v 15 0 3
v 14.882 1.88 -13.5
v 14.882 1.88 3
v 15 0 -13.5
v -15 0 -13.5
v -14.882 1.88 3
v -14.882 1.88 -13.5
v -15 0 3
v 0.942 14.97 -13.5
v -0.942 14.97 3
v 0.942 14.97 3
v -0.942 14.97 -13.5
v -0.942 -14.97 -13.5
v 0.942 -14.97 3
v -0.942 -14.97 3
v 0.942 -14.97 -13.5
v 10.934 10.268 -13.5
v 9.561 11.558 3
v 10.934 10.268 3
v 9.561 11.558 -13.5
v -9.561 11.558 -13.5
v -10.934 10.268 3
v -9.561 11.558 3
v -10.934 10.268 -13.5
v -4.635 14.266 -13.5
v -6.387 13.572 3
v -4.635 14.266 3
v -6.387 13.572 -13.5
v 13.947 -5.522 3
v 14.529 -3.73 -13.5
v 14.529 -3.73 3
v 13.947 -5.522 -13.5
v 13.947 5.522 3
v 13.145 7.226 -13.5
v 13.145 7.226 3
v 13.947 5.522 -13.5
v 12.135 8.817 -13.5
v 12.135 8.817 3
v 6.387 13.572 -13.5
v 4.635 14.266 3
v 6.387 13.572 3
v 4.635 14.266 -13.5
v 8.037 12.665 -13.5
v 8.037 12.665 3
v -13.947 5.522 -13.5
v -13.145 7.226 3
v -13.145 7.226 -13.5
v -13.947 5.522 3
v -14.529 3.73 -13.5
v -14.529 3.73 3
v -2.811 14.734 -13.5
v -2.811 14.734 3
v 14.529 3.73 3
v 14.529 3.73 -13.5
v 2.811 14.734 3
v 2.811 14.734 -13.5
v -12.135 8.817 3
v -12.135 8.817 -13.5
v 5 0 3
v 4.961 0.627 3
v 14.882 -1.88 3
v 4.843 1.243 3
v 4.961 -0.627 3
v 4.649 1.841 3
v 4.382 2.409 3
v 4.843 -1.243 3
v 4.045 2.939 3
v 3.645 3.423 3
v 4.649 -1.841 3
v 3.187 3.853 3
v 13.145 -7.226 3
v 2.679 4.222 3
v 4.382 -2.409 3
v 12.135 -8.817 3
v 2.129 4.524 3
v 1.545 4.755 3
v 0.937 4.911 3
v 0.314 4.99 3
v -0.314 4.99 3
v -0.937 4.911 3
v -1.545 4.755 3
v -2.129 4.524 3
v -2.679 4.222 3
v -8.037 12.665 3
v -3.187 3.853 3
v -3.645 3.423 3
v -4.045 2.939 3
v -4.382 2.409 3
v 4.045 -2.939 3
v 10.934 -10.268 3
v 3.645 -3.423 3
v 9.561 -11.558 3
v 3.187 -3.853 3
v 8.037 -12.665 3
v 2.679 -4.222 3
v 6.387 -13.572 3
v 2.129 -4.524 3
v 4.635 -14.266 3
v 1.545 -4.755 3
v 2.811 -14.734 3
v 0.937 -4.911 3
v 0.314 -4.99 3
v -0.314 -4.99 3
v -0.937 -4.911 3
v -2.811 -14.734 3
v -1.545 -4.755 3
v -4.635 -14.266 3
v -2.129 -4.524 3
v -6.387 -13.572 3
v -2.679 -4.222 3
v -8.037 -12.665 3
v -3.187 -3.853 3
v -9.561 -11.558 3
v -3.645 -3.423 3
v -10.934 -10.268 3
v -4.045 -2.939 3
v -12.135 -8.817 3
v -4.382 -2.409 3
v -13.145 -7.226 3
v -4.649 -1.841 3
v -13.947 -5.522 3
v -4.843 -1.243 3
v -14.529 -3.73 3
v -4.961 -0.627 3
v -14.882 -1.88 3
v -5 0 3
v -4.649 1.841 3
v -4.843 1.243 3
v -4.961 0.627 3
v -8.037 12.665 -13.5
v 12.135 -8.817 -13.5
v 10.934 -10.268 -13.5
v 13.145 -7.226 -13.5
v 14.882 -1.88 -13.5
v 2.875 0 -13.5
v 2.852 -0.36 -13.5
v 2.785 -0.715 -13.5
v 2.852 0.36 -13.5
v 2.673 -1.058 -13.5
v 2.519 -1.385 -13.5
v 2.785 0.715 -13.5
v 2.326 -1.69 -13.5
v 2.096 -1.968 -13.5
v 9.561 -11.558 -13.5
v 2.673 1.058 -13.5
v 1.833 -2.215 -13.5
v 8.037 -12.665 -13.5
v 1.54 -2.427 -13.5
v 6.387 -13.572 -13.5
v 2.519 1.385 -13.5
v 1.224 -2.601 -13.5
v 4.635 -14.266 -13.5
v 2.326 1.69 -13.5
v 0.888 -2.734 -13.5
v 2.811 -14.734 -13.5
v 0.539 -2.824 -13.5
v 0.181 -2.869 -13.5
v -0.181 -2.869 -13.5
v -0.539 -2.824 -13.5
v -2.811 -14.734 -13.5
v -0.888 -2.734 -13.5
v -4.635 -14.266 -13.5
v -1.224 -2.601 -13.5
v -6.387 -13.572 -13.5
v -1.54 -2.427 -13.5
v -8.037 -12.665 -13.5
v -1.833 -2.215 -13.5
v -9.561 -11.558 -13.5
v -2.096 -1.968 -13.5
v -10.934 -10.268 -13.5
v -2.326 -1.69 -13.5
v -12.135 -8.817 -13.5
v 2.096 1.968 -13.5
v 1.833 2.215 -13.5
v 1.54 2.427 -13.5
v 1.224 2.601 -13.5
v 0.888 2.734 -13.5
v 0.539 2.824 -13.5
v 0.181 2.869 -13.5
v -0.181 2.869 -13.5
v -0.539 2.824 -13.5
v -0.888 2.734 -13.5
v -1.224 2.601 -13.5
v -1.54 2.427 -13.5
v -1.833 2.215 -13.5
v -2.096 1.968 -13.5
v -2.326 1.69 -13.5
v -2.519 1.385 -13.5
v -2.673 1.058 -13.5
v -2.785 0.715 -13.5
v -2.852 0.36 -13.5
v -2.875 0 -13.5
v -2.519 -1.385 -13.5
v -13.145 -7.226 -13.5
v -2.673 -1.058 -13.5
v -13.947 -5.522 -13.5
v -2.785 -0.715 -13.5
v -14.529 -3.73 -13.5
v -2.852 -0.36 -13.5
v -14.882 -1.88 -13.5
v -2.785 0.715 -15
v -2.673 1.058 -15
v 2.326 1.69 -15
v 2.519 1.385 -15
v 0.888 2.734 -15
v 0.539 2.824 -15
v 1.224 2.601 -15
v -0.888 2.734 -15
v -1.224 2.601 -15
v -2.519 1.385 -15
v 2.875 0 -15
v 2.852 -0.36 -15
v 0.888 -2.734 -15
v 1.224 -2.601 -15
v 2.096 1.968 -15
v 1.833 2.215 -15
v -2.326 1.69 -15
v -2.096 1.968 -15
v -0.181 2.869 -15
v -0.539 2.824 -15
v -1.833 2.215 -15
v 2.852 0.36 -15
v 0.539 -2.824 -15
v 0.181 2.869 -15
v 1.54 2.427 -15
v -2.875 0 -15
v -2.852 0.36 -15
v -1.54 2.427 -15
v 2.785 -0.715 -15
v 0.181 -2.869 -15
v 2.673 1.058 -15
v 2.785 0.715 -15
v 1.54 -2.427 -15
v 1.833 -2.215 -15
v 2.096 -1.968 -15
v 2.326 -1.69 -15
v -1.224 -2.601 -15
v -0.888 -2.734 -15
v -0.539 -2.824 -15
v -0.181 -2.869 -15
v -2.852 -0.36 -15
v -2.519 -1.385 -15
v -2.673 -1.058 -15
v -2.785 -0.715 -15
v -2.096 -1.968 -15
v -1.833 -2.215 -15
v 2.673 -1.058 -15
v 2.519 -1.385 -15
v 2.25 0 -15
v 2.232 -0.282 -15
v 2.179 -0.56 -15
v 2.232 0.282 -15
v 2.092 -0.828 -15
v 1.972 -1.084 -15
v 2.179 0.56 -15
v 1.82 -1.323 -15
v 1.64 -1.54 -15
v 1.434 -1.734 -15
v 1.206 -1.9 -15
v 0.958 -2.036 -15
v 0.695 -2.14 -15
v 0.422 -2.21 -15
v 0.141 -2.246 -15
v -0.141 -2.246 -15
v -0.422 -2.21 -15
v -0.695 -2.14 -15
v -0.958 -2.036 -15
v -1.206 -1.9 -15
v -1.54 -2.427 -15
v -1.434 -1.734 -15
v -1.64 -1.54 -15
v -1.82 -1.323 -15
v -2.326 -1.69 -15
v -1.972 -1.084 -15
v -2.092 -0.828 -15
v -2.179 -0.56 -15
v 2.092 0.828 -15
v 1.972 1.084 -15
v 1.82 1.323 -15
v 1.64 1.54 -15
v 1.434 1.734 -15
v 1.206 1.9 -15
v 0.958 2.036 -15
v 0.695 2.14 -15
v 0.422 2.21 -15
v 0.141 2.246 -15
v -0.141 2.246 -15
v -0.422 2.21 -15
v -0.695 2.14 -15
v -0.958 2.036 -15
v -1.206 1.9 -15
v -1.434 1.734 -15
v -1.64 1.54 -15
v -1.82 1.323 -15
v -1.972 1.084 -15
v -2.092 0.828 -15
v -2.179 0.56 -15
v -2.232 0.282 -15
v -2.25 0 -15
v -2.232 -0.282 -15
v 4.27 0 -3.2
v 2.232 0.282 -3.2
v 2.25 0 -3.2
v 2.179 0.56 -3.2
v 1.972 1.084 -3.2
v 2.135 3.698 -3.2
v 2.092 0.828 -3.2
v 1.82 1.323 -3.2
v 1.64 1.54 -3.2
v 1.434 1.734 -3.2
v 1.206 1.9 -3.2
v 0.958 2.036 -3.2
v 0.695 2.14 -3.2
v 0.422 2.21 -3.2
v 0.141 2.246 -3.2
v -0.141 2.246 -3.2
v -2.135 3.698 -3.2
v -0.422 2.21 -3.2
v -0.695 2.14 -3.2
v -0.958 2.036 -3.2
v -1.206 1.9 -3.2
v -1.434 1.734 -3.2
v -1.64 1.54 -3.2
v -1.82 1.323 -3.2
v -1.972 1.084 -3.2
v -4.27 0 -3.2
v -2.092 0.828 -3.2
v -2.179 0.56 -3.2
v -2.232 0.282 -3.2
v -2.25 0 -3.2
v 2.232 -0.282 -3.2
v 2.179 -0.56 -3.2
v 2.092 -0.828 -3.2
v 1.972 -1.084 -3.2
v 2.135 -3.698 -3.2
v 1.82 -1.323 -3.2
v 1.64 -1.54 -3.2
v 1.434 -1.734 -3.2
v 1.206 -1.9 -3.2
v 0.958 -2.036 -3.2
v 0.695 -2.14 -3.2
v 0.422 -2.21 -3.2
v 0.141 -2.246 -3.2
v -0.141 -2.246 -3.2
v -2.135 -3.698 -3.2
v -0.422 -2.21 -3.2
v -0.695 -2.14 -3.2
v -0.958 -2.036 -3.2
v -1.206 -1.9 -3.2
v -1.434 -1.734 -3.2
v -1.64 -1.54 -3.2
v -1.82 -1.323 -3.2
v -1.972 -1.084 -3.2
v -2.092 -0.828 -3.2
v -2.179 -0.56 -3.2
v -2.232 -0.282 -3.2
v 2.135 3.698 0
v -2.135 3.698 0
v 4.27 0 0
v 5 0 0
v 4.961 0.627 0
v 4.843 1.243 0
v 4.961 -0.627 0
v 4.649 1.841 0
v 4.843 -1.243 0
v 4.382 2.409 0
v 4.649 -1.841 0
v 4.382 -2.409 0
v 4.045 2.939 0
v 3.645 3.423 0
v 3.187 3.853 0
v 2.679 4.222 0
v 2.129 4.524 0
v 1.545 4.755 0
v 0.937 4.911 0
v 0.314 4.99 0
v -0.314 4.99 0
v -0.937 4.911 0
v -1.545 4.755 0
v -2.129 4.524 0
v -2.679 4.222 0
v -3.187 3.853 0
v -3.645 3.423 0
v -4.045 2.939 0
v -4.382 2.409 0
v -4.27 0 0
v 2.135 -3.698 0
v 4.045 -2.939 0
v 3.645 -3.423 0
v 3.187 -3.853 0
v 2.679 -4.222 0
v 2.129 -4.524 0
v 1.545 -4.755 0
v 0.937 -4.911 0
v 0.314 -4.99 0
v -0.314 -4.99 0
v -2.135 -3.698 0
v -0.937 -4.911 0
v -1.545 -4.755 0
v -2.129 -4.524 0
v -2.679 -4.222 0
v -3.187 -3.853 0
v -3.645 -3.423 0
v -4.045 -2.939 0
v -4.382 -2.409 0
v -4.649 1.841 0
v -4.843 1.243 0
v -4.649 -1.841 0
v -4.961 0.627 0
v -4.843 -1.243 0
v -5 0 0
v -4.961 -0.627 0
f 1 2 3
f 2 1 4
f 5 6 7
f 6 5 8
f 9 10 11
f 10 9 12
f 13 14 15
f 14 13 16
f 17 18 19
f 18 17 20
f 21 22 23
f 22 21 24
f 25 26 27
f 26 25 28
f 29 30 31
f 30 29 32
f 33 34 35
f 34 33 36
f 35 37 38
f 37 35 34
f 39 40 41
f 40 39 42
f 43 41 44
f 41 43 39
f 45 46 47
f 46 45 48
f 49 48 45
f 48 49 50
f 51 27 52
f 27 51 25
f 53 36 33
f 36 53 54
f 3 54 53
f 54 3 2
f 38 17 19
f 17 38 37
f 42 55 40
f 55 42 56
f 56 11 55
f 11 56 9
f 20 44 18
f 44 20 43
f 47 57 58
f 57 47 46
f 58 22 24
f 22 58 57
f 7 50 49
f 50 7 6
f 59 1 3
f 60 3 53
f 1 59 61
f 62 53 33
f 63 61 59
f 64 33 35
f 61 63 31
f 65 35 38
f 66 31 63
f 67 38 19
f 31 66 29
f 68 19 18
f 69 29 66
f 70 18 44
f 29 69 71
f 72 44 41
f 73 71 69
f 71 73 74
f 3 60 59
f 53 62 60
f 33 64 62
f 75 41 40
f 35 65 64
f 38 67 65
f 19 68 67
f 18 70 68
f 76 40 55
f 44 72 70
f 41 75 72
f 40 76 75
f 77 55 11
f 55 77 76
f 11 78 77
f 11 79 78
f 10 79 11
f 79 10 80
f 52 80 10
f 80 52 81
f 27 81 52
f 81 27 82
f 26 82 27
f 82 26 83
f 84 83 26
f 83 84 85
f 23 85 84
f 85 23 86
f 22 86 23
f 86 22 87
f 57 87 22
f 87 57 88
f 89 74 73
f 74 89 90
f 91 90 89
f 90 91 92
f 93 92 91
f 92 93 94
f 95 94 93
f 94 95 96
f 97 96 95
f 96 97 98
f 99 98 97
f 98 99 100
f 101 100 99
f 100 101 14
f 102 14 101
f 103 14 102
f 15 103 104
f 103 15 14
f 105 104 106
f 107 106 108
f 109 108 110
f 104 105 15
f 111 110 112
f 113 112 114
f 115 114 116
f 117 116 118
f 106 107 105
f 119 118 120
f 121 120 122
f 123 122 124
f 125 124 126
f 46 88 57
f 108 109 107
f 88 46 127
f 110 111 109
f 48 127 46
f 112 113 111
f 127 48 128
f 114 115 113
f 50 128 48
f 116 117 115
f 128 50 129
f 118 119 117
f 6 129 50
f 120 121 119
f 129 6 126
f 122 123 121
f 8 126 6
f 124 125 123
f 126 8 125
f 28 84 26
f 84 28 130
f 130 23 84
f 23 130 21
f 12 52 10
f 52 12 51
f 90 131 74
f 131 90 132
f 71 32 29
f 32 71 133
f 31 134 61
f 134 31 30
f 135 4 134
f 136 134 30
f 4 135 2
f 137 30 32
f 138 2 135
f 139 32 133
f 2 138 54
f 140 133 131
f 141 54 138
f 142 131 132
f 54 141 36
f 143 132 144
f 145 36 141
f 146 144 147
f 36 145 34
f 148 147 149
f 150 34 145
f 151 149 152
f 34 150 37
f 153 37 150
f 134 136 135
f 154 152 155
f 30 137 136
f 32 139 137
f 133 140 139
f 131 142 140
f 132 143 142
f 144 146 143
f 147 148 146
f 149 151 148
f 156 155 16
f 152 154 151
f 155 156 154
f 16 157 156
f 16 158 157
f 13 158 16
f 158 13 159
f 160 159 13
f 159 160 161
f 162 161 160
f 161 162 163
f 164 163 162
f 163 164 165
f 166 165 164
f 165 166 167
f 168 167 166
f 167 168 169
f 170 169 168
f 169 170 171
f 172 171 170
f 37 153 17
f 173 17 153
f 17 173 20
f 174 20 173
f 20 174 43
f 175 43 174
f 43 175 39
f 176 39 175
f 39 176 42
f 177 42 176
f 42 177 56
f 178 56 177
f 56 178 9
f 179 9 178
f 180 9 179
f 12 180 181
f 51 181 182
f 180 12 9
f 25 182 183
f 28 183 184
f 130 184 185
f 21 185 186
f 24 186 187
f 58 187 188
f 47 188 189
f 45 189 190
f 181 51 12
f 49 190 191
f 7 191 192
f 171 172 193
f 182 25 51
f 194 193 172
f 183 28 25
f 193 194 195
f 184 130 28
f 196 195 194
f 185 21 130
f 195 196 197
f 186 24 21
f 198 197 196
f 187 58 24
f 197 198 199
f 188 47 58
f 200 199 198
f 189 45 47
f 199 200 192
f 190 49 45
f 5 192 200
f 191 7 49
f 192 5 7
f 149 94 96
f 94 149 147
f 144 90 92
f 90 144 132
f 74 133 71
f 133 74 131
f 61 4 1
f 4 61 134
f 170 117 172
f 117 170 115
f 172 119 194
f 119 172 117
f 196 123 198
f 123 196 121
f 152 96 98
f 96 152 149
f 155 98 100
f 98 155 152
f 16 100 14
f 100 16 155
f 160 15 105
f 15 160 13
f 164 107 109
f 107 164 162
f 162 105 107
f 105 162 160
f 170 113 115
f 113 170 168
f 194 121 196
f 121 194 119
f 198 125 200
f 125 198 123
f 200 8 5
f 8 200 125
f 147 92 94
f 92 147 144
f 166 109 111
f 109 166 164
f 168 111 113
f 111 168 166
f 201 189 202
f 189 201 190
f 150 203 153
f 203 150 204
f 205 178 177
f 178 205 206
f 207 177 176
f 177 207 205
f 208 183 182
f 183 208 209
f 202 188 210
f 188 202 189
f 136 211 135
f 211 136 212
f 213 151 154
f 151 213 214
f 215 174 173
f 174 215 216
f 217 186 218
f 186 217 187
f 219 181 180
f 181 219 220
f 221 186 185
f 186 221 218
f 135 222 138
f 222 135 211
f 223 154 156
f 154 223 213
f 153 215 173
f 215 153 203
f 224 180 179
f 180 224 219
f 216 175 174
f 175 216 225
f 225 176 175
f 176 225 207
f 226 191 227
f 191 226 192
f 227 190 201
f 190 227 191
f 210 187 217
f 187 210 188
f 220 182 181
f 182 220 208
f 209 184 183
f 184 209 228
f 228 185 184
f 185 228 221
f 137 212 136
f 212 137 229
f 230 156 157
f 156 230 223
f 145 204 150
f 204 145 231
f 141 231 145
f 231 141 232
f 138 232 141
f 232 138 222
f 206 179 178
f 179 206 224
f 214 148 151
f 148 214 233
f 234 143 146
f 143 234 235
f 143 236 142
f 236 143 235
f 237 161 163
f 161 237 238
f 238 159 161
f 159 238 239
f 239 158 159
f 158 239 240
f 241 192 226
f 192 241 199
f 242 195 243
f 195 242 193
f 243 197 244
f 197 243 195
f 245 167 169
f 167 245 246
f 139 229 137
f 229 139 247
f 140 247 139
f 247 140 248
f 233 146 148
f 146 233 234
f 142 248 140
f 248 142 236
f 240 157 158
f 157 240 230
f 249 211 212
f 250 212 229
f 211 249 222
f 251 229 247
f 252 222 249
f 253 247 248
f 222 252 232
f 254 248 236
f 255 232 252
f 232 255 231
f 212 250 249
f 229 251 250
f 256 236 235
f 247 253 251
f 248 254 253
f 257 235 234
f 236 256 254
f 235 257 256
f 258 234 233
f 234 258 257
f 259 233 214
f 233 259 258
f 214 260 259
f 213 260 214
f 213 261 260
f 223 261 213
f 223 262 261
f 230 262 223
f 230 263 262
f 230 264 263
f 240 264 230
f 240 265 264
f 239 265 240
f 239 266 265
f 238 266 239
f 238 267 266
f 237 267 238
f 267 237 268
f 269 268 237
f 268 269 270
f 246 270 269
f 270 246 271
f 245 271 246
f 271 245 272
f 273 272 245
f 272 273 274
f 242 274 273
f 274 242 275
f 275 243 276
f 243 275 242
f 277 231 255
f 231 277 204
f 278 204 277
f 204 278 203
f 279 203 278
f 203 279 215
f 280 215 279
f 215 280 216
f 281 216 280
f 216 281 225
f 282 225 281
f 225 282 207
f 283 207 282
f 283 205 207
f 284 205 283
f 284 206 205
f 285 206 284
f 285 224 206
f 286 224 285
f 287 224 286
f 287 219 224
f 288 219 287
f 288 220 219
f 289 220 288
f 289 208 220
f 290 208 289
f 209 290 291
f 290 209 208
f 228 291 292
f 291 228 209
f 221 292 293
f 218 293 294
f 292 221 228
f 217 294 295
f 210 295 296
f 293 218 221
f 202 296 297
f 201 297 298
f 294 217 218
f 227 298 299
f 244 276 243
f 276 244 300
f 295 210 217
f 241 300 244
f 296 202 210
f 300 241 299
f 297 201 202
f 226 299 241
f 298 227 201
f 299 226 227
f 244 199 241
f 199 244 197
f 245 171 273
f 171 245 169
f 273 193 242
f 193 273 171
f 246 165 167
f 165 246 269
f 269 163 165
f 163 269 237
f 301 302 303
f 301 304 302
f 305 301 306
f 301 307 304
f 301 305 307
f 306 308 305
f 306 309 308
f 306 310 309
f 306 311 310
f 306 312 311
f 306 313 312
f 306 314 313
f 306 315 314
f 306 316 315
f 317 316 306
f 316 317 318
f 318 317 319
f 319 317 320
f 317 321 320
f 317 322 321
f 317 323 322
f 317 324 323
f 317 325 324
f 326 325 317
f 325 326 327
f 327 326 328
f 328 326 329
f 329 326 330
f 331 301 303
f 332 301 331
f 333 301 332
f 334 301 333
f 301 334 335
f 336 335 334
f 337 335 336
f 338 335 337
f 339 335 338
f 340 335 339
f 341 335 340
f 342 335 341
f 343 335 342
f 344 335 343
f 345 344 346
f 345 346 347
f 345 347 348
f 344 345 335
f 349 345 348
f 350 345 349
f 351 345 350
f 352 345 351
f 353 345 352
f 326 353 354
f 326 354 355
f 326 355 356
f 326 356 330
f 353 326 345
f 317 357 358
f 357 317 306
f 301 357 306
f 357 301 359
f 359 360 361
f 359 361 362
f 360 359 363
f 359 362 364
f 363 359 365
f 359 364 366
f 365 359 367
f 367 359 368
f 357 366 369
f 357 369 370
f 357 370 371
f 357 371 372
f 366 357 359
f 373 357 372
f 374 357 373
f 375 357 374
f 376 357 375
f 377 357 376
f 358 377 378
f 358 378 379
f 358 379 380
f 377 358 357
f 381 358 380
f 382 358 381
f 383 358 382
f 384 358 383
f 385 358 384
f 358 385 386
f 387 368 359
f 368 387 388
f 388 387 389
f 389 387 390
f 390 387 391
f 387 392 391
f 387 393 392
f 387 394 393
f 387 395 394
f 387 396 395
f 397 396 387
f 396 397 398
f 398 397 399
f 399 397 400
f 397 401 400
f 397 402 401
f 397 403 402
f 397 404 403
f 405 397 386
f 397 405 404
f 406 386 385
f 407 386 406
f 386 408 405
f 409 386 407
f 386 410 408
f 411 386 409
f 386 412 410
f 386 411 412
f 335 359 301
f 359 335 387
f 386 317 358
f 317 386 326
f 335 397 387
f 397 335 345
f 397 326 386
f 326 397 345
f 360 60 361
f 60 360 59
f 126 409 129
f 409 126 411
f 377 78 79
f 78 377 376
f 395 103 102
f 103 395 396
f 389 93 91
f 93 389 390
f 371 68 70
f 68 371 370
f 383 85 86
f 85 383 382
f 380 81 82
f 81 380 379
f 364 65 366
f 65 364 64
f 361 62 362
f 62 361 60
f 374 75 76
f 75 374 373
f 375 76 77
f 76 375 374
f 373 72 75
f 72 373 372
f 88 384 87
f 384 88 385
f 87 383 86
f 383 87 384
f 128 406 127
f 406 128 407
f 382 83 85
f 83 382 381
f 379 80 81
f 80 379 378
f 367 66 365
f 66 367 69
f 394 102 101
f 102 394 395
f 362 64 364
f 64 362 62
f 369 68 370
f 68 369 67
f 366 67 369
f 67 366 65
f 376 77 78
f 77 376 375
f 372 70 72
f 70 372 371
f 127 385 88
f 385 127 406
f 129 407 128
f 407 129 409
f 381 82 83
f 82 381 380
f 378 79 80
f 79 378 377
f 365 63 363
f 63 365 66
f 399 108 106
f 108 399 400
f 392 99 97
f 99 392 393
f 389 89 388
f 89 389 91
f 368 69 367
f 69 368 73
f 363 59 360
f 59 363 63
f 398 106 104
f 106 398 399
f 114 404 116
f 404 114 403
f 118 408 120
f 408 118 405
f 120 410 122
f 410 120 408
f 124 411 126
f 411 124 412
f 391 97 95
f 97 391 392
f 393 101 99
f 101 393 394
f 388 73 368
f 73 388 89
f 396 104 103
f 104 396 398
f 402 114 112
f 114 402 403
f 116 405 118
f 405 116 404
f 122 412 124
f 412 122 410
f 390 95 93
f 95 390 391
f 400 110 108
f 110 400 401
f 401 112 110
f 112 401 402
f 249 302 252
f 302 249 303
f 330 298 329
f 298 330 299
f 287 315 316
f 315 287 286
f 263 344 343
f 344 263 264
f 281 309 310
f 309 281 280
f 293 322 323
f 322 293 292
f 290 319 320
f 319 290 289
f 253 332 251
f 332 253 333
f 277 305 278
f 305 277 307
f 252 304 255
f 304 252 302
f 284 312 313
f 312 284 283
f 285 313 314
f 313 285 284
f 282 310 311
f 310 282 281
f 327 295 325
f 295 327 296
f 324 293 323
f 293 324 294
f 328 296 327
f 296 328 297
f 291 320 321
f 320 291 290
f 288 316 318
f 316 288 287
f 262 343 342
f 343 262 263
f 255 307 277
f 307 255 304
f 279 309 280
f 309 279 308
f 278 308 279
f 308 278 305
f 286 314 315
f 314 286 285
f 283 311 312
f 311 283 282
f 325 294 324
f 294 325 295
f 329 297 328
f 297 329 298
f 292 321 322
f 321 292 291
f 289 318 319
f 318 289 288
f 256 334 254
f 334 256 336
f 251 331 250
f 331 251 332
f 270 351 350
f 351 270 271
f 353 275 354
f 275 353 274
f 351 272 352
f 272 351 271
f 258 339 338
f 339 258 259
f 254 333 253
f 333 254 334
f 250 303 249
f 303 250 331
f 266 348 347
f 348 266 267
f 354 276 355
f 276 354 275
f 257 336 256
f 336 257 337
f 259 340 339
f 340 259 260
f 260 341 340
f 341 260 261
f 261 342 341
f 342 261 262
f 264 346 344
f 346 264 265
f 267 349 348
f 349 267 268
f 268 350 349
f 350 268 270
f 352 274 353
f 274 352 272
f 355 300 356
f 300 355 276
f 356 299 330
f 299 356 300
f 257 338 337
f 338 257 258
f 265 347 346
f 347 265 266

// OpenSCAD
$fn = 50;

difference() {
	union() {
		translate(v = [0, 0, -13.5]) {
			cylinder(h = 16.5, r = 15.0);
		}
		#translate(v = [0, 0, -15.0]) {
			cylinder(h = 15, r = 2.875);
		}
	}
	union() {
		translate(v = [0, 0, 0]) {
			rotate(a = [0, 0, 0]) {
				difference() {
					union() {
						translate(v = [0, 0, -3.2]) {
							linear_extrude(height = 3.2) {
								polygon(points = [[4.2698, 0.0], [2.1349000000000005, 3.697755269078796], [-2.134899999999999, 3.6977552690787965], [-4.2698, 5.228996902999369e-16], [-2.134900000000002, -3.6977552690787956], [2.1348999999999974, -3.697755269078798]]);
							}
						}
					}
					union();
				}
			}
		}
		#cylinder(h = 3, r = 5.0);
		#translate(v = [0, 0, -100.0]) {
			cylinder(h = 200, r = 2.25);
		}
	}
}
